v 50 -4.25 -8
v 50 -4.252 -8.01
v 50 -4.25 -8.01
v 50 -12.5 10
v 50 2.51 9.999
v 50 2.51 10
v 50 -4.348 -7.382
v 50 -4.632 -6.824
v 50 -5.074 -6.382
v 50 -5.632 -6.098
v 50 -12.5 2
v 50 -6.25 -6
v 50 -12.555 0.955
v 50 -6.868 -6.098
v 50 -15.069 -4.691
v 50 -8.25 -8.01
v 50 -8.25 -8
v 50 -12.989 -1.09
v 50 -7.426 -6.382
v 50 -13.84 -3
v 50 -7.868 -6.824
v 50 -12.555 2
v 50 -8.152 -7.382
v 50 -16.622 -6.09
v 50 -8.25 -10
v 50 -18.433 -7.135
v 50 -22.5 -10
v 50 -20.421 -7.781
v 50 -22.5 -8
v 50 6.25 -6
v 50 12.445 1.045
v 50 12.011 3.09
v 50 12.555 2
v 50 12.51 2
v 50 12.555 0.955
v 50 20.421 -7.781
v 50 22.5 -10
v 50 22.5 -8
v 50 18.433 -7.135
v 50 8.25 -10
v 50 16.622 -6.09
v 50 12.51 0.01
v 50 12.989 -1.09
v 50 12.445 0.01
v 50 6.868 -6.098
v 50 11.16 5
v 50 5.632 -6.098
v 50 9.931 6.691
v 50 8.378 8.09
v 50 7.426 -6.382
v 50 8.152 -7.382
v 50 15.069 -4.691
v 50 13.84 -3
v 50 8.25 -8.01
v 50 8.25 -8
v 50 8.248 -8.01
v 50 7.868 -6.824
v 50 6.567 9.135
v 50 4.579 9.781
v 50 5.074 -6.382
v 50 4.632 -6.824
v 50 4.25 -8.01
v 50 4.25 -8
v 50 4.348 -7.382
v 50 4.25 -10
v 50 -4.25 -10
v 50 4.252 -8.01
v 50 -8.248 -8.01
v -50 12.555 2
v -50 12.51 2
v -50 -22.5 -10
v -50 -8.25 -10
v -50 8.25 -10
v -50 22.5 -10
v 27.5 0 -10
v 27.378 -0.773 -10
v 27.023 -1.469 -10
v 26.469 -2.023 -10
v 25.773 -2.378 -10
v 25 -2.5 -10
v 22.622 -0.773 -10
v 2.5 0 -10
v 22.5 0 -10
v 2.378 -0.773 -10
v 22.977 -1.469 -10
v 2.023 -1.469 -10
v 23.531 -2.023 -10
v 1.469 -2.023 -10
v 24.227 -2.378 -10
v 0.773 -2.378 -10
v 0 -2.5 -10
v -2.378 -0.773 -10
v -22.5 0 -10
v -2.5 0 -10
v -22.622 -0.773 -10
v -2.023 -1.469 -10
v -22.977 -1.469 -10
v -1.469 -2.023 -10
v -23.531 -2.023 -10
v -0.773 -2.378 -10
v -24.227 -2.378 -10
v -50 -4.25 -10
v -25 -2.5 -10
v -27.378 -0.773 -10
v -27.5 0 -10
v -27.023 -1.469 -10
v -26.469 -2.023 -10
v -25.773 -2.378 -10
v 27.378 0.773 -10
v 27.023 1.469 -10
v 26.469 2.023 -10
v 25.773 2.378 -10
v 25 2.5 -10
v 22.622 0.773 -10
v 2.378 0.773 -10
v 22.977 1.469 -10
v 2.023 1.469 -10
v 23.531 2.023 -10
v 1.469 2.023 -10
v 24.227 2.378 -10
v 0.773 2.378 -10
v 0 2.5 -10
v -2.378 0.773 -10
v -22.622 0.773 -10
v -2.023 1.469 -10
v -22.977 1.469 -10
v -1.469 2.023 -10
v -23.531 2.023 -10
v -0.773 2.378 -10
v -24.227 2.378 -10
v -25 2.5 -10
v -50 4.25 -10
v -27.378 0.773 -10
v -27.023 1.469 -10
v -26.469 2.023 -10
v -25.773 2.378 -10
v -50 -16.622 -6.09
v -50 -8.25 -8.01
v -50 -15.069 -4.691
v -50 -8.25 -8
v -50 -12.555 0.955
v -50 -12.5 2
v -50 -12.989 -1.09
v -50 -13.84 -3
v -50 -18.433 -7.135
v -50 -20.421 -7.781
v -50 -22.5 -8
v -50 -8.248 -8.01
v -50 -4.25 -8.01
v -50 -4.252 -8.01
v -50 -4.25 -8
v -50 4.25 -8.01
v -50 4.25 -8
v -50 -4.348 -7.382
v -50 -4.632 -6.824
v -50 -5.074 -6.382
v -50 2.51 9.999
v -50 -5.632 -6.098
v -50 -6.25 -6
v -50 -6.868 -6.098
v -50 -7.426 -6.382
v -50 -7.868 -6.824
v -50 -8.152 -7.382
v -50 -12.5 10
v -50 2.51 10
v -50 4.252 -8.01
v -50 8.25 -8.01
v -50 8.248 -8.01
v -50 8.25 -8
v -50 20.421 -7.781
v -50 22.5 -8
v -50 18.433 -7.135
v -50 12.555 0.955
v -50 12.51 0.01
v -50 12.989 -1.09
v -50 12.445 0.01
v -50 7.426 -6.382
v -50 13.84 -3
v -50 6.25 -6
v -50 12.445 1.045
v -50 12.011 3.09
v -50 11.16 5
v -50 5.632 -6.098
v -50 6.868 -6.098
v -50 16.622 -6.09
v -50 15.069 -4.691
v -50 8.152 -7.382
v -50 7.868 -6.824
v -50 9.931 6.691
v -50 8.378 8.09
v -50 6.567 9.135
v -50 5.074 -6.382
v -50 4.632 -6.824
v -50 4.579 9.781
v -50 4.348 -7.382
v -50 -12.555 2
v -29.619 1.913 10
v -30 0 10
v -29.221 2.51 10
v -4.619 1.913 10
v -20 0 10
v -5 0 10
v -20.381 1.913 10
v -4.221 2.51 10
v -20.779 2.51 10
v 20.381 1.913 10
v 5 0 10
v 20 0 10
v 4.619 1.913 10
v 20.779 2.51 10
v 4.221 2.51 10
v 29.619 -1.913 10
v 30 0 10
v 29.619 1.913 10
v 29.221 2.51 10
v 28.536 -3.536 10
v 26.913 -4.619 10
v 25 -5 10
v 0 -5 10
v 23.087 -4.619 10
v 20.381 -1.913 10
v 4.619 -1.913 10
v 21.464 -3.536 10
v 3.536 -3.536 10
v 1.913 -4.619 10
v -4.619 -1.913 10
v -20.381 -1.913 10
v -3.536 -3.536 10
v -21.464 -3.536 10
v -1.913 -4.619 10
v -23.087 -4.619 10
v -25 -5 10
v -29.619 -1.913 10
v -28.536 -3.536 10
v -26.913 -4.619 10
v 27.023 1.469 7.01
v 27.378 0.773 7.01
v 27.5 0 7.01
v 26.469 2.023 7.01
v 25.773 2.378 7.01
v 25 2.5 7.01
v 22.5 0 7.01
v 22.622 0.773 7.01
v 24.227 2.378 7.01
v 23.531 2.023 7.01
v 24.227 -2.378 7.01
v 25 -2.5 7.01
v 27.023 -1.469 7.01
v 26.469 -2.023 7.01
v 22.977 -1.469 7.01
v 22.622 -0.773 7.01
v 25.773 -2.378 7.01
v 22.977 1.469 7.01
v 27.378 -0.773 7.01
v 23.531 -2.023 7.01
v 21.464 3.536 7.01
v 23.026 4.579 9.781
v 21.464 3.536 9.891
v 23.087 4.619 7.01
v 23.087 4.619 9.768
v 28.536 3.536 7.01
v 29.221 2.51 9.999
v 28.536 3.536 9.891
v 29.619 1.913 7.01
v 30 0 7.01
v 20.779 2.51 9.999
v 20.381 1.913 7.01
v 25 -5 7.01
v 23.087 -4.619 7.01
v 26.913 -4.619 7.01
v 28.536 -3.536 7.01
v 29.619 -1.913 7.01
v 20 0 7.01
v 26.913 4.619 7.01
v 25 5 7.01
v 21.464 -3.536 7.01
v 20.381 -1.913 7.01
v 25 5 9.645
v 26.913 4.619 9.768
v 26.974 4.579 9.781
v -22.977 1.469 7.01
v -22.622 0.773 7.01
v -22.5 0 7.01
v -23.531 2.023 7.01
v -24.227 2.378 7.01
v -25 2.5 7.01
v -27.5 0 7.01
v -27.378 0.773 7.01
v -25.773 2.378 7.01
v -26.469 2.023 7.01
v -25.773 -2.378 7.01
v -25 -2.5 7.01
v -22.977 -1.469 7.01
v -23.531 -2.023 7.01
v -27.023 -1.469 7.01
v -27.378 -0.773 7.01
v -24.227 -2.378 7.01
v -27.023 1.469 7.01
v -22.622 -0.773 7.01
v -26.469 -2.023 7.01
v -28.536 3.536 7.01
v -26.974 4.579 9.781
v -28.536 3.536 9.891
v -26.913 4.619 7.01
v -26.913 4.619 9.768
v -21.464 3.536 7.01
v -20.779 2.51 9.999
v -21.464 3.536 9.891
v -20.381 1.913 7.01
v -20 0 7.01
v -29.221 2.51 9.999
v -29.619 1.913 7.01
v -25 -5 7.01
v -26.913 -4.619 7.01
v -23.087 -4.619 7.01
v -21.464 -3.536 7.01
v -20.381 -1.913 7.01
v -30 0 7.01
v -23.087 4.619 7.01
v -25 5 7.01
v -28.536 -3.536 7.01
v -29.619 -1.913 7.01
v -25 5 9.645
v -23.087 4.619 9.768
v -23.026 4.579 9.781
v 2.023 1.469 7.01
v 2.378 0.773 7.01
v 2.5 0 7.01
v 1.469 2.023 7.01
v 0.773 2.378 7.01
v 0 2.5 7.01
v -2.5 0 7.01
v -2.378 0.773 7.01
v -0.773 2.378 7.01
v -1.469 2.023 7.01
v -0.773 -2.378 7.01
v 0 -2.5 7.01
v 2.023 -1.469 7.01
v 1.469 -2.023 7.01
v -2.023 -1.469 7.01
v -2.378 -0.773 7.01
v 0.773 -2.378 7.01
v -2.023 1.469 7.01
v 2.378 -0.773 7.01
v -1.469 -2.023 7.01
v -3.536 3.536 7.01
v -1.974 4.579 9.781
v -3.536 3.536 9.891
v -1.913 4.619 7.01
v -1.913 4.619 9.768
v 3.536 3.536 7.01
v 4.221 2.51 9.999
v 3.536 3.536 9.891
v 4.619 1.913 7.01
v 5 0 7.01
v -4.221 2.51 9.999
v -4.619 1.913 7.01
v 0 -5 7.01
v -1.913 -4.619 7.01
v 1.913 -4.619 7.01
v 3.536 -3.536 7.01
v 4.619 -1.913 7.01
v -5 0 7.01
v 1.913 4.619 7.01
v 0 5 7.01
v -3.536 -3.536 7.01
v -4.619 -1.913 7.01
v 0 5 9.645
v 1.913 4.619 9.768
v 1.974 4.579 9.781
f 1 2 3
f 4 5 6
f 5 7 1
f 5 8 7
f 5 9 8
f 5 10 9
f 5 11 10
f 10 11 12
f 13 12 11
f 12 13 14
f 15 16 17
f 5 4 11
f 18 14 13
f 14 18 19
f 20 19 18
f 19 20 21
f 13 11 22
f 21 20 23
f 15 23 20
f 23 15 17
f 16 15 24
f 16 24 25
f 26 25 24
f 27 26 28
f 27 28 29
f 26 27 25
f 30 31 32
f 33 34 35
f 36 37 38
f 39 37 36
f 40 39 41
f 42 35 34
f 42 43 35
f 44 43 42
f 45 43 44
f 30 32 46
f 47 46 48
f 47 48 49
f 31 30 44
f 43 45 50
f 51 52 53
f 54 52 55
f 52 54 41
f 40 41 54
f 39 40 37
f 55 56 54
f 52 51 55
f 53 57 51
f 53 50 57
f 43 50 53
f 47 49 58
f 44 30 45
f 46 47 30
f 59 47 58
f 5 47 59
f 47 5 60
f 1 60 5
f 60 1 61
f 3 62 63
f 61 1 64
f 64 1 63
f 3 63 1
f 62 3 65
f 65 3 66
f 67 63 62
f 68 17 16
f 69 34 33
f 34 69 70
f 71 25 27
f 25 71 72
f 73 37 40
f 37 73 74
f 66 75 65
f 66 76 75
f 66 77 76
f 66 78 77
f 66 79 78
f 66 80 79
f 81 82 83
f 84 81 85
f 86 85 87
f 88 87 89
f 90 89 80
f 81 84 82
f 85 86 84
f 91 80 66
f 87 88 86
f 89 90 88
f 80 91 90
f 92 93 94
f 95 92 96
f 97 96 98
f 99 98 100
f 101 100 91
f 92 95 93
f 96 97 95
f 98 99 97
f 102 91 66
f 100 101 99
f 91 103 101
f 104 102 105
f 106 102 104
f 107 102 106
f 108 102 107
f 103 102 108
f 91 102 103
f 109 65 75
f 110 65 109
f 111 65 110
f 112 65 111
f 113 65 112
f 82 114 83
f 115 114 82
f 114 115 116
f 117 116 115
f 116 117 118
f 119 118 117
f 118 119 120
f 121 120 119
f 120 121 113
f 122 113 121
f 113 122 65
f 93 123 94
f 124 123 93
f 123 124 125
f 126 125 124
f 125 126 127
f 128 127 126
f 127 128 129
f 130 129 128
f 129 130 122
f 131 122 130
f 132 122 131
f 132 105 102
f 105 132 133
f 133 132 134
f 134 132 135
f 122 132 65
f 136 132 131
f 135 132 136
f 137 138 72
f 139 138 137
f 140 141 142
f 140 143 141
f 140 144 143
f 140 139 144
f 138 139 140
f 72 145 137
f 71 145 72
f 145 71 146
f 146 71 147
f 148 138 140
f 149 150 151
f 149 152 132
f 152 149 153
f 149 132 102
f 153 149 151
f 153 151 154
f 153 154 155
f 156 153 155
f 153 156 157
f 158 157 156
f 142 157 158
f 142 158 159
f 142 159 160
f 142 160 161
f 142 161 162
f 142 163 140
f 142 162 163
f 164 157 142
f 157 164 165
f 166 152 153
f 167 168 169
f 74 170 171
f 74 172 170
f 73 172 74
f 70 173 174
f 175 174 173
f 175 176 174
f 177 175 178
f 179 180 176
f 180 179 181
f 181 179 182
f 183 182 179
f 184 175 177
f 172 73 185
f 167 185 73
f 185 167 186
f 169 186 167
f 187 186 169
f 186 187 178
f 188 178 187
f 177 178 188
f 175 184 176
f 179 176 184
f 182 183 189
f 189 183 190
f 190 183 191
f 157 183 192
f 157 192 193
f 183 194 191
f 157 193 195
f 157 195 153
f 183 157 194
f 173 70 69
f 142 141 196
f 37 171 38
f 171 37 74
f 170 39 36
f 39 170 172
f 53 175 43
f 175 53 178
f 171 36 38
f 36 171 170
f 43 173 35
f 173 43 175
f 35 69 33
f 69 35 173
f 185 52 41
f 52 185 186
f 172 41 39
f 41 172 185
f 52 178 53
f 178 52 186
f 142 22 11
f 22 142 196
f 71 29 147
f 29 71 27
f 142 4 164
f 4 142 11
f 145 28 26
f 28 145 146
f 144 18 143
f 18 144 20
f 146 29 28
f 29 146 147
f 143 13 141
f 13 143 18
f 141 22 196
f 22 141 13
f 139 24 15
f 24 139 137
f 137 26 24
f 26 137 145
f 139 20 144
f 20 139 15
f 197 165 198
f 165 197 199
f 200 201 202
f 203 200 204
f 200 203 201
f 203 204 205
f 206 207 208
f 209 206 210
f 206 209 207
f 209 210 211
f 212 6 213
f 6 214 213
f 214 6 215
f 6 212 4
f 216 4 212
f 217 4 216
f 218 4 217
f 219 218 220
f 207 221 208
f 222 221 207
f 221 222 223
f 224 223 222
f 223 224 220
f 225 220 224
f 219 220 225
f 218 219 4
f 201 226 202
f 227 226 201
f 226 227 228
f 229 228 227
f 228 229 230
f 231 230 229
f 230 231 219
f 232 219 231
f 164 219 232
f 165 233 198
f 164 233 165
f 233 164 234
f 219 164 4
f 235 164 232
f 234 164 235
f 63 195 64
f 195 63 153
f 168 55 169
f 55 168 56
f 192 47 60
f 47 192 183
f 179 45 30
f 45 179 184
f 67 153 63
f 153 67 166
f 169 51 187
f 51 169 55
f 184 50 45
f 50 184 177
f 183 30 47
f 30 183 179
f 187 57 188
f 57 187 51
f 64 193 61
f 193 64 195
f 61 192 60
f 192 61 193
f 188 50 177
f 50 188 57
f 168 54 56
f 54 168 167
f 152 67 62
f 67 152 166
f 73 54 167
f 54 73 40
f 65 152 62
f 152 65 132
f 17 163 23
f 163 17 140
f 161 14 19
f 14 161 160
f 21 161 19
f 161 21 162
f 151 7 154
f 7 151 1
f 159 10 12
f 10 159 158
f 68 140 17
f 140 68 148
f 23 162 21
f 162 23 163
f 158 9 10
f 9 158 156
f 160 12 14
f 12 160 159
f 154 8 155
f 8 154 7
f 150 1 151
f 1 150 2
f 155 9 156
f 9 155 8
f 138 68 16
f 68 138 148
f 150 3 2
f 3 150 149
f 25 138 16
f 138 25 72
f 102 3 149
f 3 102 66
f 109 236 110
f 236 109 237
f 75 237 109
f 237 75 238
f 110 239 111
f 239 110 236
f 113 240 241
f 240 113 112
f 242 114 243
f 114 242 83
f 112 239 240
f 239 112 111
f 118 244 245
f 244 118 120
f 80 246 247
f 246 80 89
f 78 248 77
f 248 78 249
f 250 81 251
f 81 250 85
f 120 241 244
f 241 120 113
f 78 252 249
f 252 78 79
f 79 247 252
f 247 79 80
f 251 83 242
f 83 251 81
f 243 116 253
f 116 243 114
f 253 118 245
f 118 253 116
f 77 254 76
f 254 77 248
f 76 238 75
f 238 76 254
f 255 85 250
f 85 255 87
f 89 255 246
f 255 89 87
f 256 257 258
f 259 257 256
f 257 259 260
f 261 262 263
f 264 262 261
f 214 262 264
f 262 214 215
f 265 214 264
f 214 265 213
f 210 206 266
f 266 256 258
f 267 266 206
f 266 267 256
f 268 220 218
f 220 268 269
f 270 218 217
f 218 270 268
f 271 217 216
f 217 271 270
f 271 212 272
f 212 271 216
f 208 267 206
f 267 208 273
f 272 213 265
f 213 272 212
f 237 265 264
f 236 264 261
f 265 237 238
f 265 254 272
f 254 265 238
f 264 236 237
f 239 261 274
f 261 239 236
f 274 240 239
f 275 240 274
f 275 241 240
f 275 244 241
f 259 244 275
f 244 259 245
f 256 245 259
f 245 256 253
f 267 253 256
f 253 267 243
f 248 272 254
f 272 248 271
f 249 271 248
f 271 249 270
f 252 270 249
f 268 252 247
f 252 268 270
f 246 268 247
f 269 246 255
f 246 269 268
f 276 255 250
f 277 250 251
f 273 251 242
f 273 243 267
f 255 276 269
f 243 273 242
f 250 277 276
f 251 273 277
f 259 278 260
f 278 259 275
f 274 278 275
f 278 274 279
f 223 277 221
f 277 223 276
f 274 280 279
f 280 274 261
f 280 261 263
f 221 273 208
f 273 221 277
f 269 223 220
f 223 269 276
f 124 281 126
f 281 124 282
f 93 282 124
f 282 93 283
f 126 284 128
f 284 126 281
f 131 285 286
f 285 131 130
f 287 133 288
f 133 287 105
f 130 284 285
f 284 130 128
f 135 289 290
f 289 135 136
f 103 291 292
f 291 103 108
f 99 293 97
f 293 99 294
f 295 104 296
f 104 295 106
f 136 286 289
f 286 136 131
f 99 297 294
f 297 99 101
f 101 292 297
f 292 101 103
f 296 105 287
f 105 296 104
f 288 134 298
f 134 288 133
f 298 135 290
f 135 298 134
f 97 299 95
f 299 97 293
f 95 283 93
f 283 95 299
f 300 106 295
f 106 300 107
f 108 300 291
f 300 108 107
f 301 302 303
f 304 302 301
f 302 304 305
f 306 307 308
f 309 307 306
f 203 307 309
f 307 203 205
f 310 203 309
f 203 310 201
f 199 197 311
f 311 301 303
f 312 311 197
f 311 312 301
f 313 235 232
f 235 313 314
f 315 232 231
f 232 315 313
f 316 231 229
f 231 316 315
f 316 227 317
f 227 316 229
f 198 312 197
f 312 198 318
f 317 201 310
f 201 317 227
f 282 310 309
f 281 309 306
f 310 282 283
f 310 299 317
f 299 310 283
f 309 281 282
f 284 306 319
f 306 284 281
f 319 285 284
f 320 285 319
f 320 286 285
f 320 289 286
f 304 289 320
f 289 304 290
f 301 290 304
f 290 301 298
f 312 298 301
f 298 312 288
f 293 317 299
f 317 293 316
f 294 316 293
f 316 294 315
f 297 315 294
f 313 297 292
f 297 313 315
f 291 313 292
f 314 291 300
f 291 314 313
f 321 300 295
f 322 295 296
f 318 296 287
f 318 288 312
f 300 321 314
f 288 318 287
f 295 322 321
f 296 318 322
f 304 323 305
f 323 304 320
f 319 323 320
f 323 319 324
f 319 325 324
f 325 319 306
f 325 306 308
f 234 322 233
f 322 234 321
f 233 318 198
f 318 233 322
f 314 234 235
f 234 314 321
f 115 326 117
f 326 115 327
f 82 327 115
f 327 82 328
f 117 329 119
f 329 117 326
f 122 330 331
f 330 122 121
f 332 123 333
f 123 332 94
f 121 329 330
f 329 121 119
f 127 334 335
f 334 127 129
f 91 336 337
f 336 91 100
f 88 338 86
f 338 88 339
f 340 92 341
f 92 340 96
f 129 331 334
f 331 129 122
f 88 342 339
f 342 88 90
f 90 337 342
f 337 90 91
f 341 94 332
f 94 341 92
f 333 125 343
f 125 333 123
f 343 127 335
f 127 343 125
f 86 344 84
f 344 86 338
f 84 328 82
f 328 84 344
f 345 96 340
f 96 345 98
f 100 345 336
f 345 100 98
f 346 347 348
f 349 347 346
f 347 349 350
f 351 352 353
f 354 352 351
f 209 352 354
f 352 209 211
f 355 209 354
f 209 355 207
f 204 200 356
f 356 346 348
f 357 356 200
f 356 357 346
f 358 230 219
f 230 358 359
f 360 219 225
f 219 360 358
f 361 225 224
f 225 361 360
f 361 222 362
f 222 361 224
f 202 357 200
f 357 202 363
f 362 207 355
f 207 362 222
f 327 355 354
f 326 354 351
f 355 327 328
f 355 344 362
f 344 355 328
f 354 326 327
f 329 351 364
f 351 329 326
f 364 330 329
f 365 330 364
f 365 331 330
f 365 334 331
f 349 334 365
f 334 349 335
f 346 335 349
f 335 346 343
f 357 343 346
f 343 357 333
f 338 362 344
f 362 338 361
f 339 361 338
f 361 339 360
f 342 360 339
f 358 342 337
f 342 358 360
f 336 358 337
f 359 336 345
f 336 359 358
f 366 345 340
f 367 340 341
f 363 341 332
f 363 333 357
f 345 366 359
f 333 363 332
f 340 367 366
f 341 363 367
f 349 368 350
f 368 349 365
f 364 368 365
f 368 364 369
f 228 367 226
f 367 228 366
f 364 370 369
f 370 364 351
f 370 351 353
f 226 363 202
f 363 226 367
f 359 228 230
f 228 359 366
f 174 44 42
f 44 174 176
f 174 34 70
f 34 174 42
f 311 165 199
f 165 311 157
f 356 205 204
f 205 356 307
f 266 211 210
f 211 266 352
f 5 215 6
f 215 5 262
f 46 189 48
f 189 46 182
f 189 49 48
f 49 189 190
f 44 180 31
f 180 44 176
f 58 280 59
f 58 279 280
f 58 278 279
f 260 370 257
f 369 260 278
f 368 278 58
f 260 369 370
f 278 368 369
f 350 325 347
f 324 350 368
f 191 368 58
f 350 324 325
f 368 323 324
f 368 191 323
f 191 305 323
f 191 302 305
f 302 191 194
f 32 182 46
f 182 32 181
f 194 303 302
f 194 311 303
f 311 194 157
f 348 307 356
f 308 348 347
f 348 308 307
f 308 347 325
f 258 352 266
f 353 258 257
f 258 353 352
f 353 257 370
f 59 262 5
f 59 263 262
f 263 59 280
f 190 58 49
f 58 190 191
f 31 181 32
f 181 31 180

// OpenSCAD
w=100;
l=25;
h=20;

d=4;
d_bolt=5;

difference(){
    bind();
    union(){
        translate([0,l/4,-h/2+d/2]) rotate([0,90,0]) cylinder(w+0.01,d/2,d/2,true,$fn=20);
        translate([0,l/4,-h/2+d/4-0.01]) cube([w+0.01,d,d/2],true);
    }
    mirror([0,1,0])    union(){
        translate([0,l/4,-h/2+d/2]) rotate([0,90,0]) cylinder(w+0.01,d/2,d/2,true,$fn=20);
        translate([0,l/4,-h/2+d/4-0.01]) cube([w+0.01,d,d/2],true);
    }
    union(){
        cylinder(h+0.01,d_bolt/2,d_bolt/2,true,$fn=20);
        translate([0,0,h/2-3/2+0.01]) cylinder(3,5,5,true);
        translate([w/4,0,0]){cylinder(h+0.01,d_bolt/2,d_bolt/2,true,$fn=20);translate([0,0,h/2-3/2+0.01]) cylinder(3,5,5,true);}
        translate([-w/4,0,0]){cylinder(h+0.01,d_bolt/2,d_bolt/2,true,$fn=20);translate([0,0,h/2-3/2+0.01]) cylinder(3,5,5,true);}
    }
    translate([0,l/2-h/2,0])difference(){
        translate([0,h/4+0.01,h/4+0.01]) cube([w+0.01,h/2,h/2],true);
        rotate([0,90,0]) cylinder(w+0.02,h/2,h/2,true);
    }

}    
    
module bind(){
    
    cube([w,l,h],true);
    difference(){
        translate([0,l/2+h/4,-h/4+1]) cube([w,h/2,h/2+2],true);
        translate([0,l/2+h/2,2]) rotate([0,90,0]) cylinder(w+0.02,h/2,h/2,true);
    }
    mirror([0,1,0]) difference(){
        translate([0,l/2+h/4,-h/4+1]) cube([w,h/2,h/2+2],true);
        translate([0,l/2+h/2,2]) rotate([0,90,0]) cylinder(w+0.02,h/2,h/2,true);
    }
}
